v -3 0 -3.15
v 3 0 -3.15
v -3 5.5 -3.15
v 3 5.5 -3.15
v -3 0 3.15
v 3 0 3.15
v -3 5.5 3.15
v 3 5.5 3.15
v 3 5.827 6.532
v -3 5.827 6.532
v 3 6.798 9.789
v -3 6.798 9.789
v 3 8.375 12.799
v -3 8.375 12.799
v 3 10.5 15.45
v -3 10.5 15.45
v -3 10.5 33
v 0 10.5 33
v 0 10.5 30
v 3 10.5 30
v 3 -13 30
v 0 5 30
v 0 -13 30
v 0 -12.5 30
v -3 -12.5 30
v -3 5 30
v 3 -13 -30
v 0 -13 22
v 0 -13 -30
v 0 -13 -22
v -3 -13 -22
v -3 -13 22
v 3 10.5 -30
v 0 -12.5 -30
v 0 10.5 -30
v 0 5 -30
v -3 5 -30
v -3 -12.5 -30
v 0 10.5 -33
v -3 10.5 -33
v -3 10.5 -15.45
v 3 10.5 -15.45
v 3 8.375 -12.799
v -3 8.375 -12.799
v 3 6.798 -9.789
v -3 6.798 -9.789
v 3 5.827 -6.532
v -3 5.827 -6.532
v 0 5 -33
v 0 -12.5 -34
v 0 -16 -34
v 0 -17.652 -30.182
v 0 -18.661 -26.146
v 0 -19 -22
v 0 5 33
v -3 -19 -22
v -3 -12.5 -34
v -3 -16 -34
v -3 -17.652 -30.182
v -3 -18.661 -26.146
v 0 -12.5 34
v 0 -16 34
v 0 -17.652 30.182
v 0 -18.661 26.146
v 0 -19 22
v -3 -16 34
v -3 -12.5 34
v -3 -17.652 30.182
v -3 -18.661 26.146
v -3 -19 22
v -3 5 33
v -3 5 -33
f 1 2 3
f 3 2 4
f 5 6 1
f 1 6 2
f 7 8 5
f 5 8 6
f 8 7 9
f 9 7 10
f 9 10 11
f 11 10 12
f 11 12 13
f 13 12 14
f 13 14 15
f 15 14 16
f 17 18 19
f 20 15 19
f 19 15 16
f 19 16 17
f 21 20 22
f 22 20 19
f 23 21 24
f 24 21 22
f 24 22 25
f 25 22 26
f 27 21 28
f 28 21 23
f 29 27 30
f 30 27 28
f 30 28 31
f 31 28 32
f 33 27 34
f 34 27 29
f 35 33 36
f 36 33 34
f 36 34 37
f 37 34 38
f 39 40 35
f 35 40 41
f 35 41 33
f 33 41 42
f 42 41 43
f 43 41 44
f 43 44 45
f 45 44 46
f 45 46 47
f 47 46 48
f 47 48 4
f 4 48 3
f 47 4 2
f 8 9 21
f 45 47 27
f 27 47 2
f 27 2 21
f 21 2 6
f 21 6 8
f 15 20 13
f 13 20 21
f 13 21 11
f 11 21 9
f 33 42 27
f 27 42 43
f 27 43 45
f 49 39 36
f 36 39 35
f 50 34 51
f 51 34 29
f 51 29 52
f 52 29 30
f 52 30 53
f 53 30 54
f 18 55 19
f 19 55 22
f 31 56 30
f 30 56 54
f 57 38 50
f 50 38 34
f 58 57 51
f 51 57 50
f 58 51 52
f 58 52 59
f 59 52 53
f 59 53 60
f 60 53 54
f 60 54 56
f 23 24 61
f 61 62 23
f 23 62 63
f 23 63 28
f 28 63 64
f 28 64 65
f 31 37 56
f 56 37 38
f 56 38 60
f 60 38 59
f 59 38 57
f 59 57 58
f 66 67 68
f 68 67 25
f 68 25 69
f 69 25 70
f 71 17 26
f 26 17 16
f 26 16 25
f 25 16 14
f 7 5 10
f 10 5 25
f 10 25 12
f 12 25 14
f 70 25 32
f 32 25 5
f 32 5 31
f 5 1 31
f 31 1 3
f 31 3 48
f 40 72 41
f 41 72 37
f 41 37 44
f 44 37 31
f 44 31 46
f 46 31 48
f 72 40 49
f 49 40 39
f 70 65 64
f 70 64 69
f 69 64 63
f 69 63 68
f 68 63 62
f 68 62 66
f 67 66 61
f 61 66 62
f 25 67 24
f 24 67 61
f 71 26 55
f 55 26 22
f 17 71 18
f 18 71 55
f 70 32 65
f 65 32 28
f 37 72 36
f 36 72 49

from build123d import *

# Parameters (mm, degrees)
BOSS_EXTRUDE1_DEPTH = 3
BOSS_EXTRUDE2_START = 3
BOSS_EXTRUDE2_DEPTH = 3


with BuildPart() as part:
    # Sketch1 → Boss-Extrude1 (new body)
    with BuildSketch(Plane(origin=(0, 0, 0), x_dir=(0, 0, -1), z_dir=(1, 0, 0))):
        with BuildLine():
            Line((-3.15, 0), (3.15, 0))
            Line((3.15, 0), (3.15, 5.5))
            ThreePointArc((3.15, 5.5), (9.788712225, 6.797767928), (15.45, 10.5))
            Line((15.45, 10.5), (30, 10.5))
            Line((30, 10.5), (30, -13))
            Line((30, -13), (-30, -13))
            Line((-30, -13), (-30, 10.5))
            Line((-30, 10.5), (-15.45, 10.5))
            ThreePointArc((-15.45, 10.5), (-9.788712225, 6.797767928), (-3.15, 5.5))
            Line((-3.15, 5.5), (-3.15, 0))
        make_face()
    extrude(amount=BOSS_EXTRUDE1_DEPTH)

    # Sketch2 → Boss-Extrude2 (add)
    with BuildSketch(Plane.ZY.offset(BOSS_EXTRUDE2_START)):
        with BuildLine():
            Line((34, -12.5), (30, -12.5))
            Line((30, -12.5), (30, 5))
            Line((30, 5), (33, 5))
            Line((33, 5), (33, 10.5))
            Line((33, 10.5), (15.45, 10.5))
            ThreePointArc((15.45, 10.5), (9.788712225, 6.797767928), (3.15, 5.5))
            Line((3.15, 5.5), (3.15, 0))
            Line((3.15, 0), (-3.15, 0))
            Line((-3.15, 0), (-3.15, 5.5))
            ThreePointArc((-3.15, 5.5), (-9.788712225, 6.797767928), (-15.45, 10.5))
            Line((-15.45, 10.5), (-33, 10.5))
            Line((-33, 10.5), (-33, 5))
            Line((-33, 5), (-30, 5))
            Line((-30, 5), (-30, -12.5))
            Line((-30, -12.5), (-34, -12.5))
            Line((-34, -12.5), (-34, -16))
            ThreePointArc((-34, -16), (-28.184658438, -18.238633754), (-22, -19))
            Line((-22, -19), (-22, -13))
            Line((-22, -13), (22, -13))
            Line((22, -13), (22, -19))
            ThreePointArc((22, -19), (28.184658438, -18.238633754), (34, -16))
            Line((34, -16), (34, -12.5))
        make_face()
    extrude(amount=-BOSS_EXTRUDE2_DEPTH)


solid = part.part
